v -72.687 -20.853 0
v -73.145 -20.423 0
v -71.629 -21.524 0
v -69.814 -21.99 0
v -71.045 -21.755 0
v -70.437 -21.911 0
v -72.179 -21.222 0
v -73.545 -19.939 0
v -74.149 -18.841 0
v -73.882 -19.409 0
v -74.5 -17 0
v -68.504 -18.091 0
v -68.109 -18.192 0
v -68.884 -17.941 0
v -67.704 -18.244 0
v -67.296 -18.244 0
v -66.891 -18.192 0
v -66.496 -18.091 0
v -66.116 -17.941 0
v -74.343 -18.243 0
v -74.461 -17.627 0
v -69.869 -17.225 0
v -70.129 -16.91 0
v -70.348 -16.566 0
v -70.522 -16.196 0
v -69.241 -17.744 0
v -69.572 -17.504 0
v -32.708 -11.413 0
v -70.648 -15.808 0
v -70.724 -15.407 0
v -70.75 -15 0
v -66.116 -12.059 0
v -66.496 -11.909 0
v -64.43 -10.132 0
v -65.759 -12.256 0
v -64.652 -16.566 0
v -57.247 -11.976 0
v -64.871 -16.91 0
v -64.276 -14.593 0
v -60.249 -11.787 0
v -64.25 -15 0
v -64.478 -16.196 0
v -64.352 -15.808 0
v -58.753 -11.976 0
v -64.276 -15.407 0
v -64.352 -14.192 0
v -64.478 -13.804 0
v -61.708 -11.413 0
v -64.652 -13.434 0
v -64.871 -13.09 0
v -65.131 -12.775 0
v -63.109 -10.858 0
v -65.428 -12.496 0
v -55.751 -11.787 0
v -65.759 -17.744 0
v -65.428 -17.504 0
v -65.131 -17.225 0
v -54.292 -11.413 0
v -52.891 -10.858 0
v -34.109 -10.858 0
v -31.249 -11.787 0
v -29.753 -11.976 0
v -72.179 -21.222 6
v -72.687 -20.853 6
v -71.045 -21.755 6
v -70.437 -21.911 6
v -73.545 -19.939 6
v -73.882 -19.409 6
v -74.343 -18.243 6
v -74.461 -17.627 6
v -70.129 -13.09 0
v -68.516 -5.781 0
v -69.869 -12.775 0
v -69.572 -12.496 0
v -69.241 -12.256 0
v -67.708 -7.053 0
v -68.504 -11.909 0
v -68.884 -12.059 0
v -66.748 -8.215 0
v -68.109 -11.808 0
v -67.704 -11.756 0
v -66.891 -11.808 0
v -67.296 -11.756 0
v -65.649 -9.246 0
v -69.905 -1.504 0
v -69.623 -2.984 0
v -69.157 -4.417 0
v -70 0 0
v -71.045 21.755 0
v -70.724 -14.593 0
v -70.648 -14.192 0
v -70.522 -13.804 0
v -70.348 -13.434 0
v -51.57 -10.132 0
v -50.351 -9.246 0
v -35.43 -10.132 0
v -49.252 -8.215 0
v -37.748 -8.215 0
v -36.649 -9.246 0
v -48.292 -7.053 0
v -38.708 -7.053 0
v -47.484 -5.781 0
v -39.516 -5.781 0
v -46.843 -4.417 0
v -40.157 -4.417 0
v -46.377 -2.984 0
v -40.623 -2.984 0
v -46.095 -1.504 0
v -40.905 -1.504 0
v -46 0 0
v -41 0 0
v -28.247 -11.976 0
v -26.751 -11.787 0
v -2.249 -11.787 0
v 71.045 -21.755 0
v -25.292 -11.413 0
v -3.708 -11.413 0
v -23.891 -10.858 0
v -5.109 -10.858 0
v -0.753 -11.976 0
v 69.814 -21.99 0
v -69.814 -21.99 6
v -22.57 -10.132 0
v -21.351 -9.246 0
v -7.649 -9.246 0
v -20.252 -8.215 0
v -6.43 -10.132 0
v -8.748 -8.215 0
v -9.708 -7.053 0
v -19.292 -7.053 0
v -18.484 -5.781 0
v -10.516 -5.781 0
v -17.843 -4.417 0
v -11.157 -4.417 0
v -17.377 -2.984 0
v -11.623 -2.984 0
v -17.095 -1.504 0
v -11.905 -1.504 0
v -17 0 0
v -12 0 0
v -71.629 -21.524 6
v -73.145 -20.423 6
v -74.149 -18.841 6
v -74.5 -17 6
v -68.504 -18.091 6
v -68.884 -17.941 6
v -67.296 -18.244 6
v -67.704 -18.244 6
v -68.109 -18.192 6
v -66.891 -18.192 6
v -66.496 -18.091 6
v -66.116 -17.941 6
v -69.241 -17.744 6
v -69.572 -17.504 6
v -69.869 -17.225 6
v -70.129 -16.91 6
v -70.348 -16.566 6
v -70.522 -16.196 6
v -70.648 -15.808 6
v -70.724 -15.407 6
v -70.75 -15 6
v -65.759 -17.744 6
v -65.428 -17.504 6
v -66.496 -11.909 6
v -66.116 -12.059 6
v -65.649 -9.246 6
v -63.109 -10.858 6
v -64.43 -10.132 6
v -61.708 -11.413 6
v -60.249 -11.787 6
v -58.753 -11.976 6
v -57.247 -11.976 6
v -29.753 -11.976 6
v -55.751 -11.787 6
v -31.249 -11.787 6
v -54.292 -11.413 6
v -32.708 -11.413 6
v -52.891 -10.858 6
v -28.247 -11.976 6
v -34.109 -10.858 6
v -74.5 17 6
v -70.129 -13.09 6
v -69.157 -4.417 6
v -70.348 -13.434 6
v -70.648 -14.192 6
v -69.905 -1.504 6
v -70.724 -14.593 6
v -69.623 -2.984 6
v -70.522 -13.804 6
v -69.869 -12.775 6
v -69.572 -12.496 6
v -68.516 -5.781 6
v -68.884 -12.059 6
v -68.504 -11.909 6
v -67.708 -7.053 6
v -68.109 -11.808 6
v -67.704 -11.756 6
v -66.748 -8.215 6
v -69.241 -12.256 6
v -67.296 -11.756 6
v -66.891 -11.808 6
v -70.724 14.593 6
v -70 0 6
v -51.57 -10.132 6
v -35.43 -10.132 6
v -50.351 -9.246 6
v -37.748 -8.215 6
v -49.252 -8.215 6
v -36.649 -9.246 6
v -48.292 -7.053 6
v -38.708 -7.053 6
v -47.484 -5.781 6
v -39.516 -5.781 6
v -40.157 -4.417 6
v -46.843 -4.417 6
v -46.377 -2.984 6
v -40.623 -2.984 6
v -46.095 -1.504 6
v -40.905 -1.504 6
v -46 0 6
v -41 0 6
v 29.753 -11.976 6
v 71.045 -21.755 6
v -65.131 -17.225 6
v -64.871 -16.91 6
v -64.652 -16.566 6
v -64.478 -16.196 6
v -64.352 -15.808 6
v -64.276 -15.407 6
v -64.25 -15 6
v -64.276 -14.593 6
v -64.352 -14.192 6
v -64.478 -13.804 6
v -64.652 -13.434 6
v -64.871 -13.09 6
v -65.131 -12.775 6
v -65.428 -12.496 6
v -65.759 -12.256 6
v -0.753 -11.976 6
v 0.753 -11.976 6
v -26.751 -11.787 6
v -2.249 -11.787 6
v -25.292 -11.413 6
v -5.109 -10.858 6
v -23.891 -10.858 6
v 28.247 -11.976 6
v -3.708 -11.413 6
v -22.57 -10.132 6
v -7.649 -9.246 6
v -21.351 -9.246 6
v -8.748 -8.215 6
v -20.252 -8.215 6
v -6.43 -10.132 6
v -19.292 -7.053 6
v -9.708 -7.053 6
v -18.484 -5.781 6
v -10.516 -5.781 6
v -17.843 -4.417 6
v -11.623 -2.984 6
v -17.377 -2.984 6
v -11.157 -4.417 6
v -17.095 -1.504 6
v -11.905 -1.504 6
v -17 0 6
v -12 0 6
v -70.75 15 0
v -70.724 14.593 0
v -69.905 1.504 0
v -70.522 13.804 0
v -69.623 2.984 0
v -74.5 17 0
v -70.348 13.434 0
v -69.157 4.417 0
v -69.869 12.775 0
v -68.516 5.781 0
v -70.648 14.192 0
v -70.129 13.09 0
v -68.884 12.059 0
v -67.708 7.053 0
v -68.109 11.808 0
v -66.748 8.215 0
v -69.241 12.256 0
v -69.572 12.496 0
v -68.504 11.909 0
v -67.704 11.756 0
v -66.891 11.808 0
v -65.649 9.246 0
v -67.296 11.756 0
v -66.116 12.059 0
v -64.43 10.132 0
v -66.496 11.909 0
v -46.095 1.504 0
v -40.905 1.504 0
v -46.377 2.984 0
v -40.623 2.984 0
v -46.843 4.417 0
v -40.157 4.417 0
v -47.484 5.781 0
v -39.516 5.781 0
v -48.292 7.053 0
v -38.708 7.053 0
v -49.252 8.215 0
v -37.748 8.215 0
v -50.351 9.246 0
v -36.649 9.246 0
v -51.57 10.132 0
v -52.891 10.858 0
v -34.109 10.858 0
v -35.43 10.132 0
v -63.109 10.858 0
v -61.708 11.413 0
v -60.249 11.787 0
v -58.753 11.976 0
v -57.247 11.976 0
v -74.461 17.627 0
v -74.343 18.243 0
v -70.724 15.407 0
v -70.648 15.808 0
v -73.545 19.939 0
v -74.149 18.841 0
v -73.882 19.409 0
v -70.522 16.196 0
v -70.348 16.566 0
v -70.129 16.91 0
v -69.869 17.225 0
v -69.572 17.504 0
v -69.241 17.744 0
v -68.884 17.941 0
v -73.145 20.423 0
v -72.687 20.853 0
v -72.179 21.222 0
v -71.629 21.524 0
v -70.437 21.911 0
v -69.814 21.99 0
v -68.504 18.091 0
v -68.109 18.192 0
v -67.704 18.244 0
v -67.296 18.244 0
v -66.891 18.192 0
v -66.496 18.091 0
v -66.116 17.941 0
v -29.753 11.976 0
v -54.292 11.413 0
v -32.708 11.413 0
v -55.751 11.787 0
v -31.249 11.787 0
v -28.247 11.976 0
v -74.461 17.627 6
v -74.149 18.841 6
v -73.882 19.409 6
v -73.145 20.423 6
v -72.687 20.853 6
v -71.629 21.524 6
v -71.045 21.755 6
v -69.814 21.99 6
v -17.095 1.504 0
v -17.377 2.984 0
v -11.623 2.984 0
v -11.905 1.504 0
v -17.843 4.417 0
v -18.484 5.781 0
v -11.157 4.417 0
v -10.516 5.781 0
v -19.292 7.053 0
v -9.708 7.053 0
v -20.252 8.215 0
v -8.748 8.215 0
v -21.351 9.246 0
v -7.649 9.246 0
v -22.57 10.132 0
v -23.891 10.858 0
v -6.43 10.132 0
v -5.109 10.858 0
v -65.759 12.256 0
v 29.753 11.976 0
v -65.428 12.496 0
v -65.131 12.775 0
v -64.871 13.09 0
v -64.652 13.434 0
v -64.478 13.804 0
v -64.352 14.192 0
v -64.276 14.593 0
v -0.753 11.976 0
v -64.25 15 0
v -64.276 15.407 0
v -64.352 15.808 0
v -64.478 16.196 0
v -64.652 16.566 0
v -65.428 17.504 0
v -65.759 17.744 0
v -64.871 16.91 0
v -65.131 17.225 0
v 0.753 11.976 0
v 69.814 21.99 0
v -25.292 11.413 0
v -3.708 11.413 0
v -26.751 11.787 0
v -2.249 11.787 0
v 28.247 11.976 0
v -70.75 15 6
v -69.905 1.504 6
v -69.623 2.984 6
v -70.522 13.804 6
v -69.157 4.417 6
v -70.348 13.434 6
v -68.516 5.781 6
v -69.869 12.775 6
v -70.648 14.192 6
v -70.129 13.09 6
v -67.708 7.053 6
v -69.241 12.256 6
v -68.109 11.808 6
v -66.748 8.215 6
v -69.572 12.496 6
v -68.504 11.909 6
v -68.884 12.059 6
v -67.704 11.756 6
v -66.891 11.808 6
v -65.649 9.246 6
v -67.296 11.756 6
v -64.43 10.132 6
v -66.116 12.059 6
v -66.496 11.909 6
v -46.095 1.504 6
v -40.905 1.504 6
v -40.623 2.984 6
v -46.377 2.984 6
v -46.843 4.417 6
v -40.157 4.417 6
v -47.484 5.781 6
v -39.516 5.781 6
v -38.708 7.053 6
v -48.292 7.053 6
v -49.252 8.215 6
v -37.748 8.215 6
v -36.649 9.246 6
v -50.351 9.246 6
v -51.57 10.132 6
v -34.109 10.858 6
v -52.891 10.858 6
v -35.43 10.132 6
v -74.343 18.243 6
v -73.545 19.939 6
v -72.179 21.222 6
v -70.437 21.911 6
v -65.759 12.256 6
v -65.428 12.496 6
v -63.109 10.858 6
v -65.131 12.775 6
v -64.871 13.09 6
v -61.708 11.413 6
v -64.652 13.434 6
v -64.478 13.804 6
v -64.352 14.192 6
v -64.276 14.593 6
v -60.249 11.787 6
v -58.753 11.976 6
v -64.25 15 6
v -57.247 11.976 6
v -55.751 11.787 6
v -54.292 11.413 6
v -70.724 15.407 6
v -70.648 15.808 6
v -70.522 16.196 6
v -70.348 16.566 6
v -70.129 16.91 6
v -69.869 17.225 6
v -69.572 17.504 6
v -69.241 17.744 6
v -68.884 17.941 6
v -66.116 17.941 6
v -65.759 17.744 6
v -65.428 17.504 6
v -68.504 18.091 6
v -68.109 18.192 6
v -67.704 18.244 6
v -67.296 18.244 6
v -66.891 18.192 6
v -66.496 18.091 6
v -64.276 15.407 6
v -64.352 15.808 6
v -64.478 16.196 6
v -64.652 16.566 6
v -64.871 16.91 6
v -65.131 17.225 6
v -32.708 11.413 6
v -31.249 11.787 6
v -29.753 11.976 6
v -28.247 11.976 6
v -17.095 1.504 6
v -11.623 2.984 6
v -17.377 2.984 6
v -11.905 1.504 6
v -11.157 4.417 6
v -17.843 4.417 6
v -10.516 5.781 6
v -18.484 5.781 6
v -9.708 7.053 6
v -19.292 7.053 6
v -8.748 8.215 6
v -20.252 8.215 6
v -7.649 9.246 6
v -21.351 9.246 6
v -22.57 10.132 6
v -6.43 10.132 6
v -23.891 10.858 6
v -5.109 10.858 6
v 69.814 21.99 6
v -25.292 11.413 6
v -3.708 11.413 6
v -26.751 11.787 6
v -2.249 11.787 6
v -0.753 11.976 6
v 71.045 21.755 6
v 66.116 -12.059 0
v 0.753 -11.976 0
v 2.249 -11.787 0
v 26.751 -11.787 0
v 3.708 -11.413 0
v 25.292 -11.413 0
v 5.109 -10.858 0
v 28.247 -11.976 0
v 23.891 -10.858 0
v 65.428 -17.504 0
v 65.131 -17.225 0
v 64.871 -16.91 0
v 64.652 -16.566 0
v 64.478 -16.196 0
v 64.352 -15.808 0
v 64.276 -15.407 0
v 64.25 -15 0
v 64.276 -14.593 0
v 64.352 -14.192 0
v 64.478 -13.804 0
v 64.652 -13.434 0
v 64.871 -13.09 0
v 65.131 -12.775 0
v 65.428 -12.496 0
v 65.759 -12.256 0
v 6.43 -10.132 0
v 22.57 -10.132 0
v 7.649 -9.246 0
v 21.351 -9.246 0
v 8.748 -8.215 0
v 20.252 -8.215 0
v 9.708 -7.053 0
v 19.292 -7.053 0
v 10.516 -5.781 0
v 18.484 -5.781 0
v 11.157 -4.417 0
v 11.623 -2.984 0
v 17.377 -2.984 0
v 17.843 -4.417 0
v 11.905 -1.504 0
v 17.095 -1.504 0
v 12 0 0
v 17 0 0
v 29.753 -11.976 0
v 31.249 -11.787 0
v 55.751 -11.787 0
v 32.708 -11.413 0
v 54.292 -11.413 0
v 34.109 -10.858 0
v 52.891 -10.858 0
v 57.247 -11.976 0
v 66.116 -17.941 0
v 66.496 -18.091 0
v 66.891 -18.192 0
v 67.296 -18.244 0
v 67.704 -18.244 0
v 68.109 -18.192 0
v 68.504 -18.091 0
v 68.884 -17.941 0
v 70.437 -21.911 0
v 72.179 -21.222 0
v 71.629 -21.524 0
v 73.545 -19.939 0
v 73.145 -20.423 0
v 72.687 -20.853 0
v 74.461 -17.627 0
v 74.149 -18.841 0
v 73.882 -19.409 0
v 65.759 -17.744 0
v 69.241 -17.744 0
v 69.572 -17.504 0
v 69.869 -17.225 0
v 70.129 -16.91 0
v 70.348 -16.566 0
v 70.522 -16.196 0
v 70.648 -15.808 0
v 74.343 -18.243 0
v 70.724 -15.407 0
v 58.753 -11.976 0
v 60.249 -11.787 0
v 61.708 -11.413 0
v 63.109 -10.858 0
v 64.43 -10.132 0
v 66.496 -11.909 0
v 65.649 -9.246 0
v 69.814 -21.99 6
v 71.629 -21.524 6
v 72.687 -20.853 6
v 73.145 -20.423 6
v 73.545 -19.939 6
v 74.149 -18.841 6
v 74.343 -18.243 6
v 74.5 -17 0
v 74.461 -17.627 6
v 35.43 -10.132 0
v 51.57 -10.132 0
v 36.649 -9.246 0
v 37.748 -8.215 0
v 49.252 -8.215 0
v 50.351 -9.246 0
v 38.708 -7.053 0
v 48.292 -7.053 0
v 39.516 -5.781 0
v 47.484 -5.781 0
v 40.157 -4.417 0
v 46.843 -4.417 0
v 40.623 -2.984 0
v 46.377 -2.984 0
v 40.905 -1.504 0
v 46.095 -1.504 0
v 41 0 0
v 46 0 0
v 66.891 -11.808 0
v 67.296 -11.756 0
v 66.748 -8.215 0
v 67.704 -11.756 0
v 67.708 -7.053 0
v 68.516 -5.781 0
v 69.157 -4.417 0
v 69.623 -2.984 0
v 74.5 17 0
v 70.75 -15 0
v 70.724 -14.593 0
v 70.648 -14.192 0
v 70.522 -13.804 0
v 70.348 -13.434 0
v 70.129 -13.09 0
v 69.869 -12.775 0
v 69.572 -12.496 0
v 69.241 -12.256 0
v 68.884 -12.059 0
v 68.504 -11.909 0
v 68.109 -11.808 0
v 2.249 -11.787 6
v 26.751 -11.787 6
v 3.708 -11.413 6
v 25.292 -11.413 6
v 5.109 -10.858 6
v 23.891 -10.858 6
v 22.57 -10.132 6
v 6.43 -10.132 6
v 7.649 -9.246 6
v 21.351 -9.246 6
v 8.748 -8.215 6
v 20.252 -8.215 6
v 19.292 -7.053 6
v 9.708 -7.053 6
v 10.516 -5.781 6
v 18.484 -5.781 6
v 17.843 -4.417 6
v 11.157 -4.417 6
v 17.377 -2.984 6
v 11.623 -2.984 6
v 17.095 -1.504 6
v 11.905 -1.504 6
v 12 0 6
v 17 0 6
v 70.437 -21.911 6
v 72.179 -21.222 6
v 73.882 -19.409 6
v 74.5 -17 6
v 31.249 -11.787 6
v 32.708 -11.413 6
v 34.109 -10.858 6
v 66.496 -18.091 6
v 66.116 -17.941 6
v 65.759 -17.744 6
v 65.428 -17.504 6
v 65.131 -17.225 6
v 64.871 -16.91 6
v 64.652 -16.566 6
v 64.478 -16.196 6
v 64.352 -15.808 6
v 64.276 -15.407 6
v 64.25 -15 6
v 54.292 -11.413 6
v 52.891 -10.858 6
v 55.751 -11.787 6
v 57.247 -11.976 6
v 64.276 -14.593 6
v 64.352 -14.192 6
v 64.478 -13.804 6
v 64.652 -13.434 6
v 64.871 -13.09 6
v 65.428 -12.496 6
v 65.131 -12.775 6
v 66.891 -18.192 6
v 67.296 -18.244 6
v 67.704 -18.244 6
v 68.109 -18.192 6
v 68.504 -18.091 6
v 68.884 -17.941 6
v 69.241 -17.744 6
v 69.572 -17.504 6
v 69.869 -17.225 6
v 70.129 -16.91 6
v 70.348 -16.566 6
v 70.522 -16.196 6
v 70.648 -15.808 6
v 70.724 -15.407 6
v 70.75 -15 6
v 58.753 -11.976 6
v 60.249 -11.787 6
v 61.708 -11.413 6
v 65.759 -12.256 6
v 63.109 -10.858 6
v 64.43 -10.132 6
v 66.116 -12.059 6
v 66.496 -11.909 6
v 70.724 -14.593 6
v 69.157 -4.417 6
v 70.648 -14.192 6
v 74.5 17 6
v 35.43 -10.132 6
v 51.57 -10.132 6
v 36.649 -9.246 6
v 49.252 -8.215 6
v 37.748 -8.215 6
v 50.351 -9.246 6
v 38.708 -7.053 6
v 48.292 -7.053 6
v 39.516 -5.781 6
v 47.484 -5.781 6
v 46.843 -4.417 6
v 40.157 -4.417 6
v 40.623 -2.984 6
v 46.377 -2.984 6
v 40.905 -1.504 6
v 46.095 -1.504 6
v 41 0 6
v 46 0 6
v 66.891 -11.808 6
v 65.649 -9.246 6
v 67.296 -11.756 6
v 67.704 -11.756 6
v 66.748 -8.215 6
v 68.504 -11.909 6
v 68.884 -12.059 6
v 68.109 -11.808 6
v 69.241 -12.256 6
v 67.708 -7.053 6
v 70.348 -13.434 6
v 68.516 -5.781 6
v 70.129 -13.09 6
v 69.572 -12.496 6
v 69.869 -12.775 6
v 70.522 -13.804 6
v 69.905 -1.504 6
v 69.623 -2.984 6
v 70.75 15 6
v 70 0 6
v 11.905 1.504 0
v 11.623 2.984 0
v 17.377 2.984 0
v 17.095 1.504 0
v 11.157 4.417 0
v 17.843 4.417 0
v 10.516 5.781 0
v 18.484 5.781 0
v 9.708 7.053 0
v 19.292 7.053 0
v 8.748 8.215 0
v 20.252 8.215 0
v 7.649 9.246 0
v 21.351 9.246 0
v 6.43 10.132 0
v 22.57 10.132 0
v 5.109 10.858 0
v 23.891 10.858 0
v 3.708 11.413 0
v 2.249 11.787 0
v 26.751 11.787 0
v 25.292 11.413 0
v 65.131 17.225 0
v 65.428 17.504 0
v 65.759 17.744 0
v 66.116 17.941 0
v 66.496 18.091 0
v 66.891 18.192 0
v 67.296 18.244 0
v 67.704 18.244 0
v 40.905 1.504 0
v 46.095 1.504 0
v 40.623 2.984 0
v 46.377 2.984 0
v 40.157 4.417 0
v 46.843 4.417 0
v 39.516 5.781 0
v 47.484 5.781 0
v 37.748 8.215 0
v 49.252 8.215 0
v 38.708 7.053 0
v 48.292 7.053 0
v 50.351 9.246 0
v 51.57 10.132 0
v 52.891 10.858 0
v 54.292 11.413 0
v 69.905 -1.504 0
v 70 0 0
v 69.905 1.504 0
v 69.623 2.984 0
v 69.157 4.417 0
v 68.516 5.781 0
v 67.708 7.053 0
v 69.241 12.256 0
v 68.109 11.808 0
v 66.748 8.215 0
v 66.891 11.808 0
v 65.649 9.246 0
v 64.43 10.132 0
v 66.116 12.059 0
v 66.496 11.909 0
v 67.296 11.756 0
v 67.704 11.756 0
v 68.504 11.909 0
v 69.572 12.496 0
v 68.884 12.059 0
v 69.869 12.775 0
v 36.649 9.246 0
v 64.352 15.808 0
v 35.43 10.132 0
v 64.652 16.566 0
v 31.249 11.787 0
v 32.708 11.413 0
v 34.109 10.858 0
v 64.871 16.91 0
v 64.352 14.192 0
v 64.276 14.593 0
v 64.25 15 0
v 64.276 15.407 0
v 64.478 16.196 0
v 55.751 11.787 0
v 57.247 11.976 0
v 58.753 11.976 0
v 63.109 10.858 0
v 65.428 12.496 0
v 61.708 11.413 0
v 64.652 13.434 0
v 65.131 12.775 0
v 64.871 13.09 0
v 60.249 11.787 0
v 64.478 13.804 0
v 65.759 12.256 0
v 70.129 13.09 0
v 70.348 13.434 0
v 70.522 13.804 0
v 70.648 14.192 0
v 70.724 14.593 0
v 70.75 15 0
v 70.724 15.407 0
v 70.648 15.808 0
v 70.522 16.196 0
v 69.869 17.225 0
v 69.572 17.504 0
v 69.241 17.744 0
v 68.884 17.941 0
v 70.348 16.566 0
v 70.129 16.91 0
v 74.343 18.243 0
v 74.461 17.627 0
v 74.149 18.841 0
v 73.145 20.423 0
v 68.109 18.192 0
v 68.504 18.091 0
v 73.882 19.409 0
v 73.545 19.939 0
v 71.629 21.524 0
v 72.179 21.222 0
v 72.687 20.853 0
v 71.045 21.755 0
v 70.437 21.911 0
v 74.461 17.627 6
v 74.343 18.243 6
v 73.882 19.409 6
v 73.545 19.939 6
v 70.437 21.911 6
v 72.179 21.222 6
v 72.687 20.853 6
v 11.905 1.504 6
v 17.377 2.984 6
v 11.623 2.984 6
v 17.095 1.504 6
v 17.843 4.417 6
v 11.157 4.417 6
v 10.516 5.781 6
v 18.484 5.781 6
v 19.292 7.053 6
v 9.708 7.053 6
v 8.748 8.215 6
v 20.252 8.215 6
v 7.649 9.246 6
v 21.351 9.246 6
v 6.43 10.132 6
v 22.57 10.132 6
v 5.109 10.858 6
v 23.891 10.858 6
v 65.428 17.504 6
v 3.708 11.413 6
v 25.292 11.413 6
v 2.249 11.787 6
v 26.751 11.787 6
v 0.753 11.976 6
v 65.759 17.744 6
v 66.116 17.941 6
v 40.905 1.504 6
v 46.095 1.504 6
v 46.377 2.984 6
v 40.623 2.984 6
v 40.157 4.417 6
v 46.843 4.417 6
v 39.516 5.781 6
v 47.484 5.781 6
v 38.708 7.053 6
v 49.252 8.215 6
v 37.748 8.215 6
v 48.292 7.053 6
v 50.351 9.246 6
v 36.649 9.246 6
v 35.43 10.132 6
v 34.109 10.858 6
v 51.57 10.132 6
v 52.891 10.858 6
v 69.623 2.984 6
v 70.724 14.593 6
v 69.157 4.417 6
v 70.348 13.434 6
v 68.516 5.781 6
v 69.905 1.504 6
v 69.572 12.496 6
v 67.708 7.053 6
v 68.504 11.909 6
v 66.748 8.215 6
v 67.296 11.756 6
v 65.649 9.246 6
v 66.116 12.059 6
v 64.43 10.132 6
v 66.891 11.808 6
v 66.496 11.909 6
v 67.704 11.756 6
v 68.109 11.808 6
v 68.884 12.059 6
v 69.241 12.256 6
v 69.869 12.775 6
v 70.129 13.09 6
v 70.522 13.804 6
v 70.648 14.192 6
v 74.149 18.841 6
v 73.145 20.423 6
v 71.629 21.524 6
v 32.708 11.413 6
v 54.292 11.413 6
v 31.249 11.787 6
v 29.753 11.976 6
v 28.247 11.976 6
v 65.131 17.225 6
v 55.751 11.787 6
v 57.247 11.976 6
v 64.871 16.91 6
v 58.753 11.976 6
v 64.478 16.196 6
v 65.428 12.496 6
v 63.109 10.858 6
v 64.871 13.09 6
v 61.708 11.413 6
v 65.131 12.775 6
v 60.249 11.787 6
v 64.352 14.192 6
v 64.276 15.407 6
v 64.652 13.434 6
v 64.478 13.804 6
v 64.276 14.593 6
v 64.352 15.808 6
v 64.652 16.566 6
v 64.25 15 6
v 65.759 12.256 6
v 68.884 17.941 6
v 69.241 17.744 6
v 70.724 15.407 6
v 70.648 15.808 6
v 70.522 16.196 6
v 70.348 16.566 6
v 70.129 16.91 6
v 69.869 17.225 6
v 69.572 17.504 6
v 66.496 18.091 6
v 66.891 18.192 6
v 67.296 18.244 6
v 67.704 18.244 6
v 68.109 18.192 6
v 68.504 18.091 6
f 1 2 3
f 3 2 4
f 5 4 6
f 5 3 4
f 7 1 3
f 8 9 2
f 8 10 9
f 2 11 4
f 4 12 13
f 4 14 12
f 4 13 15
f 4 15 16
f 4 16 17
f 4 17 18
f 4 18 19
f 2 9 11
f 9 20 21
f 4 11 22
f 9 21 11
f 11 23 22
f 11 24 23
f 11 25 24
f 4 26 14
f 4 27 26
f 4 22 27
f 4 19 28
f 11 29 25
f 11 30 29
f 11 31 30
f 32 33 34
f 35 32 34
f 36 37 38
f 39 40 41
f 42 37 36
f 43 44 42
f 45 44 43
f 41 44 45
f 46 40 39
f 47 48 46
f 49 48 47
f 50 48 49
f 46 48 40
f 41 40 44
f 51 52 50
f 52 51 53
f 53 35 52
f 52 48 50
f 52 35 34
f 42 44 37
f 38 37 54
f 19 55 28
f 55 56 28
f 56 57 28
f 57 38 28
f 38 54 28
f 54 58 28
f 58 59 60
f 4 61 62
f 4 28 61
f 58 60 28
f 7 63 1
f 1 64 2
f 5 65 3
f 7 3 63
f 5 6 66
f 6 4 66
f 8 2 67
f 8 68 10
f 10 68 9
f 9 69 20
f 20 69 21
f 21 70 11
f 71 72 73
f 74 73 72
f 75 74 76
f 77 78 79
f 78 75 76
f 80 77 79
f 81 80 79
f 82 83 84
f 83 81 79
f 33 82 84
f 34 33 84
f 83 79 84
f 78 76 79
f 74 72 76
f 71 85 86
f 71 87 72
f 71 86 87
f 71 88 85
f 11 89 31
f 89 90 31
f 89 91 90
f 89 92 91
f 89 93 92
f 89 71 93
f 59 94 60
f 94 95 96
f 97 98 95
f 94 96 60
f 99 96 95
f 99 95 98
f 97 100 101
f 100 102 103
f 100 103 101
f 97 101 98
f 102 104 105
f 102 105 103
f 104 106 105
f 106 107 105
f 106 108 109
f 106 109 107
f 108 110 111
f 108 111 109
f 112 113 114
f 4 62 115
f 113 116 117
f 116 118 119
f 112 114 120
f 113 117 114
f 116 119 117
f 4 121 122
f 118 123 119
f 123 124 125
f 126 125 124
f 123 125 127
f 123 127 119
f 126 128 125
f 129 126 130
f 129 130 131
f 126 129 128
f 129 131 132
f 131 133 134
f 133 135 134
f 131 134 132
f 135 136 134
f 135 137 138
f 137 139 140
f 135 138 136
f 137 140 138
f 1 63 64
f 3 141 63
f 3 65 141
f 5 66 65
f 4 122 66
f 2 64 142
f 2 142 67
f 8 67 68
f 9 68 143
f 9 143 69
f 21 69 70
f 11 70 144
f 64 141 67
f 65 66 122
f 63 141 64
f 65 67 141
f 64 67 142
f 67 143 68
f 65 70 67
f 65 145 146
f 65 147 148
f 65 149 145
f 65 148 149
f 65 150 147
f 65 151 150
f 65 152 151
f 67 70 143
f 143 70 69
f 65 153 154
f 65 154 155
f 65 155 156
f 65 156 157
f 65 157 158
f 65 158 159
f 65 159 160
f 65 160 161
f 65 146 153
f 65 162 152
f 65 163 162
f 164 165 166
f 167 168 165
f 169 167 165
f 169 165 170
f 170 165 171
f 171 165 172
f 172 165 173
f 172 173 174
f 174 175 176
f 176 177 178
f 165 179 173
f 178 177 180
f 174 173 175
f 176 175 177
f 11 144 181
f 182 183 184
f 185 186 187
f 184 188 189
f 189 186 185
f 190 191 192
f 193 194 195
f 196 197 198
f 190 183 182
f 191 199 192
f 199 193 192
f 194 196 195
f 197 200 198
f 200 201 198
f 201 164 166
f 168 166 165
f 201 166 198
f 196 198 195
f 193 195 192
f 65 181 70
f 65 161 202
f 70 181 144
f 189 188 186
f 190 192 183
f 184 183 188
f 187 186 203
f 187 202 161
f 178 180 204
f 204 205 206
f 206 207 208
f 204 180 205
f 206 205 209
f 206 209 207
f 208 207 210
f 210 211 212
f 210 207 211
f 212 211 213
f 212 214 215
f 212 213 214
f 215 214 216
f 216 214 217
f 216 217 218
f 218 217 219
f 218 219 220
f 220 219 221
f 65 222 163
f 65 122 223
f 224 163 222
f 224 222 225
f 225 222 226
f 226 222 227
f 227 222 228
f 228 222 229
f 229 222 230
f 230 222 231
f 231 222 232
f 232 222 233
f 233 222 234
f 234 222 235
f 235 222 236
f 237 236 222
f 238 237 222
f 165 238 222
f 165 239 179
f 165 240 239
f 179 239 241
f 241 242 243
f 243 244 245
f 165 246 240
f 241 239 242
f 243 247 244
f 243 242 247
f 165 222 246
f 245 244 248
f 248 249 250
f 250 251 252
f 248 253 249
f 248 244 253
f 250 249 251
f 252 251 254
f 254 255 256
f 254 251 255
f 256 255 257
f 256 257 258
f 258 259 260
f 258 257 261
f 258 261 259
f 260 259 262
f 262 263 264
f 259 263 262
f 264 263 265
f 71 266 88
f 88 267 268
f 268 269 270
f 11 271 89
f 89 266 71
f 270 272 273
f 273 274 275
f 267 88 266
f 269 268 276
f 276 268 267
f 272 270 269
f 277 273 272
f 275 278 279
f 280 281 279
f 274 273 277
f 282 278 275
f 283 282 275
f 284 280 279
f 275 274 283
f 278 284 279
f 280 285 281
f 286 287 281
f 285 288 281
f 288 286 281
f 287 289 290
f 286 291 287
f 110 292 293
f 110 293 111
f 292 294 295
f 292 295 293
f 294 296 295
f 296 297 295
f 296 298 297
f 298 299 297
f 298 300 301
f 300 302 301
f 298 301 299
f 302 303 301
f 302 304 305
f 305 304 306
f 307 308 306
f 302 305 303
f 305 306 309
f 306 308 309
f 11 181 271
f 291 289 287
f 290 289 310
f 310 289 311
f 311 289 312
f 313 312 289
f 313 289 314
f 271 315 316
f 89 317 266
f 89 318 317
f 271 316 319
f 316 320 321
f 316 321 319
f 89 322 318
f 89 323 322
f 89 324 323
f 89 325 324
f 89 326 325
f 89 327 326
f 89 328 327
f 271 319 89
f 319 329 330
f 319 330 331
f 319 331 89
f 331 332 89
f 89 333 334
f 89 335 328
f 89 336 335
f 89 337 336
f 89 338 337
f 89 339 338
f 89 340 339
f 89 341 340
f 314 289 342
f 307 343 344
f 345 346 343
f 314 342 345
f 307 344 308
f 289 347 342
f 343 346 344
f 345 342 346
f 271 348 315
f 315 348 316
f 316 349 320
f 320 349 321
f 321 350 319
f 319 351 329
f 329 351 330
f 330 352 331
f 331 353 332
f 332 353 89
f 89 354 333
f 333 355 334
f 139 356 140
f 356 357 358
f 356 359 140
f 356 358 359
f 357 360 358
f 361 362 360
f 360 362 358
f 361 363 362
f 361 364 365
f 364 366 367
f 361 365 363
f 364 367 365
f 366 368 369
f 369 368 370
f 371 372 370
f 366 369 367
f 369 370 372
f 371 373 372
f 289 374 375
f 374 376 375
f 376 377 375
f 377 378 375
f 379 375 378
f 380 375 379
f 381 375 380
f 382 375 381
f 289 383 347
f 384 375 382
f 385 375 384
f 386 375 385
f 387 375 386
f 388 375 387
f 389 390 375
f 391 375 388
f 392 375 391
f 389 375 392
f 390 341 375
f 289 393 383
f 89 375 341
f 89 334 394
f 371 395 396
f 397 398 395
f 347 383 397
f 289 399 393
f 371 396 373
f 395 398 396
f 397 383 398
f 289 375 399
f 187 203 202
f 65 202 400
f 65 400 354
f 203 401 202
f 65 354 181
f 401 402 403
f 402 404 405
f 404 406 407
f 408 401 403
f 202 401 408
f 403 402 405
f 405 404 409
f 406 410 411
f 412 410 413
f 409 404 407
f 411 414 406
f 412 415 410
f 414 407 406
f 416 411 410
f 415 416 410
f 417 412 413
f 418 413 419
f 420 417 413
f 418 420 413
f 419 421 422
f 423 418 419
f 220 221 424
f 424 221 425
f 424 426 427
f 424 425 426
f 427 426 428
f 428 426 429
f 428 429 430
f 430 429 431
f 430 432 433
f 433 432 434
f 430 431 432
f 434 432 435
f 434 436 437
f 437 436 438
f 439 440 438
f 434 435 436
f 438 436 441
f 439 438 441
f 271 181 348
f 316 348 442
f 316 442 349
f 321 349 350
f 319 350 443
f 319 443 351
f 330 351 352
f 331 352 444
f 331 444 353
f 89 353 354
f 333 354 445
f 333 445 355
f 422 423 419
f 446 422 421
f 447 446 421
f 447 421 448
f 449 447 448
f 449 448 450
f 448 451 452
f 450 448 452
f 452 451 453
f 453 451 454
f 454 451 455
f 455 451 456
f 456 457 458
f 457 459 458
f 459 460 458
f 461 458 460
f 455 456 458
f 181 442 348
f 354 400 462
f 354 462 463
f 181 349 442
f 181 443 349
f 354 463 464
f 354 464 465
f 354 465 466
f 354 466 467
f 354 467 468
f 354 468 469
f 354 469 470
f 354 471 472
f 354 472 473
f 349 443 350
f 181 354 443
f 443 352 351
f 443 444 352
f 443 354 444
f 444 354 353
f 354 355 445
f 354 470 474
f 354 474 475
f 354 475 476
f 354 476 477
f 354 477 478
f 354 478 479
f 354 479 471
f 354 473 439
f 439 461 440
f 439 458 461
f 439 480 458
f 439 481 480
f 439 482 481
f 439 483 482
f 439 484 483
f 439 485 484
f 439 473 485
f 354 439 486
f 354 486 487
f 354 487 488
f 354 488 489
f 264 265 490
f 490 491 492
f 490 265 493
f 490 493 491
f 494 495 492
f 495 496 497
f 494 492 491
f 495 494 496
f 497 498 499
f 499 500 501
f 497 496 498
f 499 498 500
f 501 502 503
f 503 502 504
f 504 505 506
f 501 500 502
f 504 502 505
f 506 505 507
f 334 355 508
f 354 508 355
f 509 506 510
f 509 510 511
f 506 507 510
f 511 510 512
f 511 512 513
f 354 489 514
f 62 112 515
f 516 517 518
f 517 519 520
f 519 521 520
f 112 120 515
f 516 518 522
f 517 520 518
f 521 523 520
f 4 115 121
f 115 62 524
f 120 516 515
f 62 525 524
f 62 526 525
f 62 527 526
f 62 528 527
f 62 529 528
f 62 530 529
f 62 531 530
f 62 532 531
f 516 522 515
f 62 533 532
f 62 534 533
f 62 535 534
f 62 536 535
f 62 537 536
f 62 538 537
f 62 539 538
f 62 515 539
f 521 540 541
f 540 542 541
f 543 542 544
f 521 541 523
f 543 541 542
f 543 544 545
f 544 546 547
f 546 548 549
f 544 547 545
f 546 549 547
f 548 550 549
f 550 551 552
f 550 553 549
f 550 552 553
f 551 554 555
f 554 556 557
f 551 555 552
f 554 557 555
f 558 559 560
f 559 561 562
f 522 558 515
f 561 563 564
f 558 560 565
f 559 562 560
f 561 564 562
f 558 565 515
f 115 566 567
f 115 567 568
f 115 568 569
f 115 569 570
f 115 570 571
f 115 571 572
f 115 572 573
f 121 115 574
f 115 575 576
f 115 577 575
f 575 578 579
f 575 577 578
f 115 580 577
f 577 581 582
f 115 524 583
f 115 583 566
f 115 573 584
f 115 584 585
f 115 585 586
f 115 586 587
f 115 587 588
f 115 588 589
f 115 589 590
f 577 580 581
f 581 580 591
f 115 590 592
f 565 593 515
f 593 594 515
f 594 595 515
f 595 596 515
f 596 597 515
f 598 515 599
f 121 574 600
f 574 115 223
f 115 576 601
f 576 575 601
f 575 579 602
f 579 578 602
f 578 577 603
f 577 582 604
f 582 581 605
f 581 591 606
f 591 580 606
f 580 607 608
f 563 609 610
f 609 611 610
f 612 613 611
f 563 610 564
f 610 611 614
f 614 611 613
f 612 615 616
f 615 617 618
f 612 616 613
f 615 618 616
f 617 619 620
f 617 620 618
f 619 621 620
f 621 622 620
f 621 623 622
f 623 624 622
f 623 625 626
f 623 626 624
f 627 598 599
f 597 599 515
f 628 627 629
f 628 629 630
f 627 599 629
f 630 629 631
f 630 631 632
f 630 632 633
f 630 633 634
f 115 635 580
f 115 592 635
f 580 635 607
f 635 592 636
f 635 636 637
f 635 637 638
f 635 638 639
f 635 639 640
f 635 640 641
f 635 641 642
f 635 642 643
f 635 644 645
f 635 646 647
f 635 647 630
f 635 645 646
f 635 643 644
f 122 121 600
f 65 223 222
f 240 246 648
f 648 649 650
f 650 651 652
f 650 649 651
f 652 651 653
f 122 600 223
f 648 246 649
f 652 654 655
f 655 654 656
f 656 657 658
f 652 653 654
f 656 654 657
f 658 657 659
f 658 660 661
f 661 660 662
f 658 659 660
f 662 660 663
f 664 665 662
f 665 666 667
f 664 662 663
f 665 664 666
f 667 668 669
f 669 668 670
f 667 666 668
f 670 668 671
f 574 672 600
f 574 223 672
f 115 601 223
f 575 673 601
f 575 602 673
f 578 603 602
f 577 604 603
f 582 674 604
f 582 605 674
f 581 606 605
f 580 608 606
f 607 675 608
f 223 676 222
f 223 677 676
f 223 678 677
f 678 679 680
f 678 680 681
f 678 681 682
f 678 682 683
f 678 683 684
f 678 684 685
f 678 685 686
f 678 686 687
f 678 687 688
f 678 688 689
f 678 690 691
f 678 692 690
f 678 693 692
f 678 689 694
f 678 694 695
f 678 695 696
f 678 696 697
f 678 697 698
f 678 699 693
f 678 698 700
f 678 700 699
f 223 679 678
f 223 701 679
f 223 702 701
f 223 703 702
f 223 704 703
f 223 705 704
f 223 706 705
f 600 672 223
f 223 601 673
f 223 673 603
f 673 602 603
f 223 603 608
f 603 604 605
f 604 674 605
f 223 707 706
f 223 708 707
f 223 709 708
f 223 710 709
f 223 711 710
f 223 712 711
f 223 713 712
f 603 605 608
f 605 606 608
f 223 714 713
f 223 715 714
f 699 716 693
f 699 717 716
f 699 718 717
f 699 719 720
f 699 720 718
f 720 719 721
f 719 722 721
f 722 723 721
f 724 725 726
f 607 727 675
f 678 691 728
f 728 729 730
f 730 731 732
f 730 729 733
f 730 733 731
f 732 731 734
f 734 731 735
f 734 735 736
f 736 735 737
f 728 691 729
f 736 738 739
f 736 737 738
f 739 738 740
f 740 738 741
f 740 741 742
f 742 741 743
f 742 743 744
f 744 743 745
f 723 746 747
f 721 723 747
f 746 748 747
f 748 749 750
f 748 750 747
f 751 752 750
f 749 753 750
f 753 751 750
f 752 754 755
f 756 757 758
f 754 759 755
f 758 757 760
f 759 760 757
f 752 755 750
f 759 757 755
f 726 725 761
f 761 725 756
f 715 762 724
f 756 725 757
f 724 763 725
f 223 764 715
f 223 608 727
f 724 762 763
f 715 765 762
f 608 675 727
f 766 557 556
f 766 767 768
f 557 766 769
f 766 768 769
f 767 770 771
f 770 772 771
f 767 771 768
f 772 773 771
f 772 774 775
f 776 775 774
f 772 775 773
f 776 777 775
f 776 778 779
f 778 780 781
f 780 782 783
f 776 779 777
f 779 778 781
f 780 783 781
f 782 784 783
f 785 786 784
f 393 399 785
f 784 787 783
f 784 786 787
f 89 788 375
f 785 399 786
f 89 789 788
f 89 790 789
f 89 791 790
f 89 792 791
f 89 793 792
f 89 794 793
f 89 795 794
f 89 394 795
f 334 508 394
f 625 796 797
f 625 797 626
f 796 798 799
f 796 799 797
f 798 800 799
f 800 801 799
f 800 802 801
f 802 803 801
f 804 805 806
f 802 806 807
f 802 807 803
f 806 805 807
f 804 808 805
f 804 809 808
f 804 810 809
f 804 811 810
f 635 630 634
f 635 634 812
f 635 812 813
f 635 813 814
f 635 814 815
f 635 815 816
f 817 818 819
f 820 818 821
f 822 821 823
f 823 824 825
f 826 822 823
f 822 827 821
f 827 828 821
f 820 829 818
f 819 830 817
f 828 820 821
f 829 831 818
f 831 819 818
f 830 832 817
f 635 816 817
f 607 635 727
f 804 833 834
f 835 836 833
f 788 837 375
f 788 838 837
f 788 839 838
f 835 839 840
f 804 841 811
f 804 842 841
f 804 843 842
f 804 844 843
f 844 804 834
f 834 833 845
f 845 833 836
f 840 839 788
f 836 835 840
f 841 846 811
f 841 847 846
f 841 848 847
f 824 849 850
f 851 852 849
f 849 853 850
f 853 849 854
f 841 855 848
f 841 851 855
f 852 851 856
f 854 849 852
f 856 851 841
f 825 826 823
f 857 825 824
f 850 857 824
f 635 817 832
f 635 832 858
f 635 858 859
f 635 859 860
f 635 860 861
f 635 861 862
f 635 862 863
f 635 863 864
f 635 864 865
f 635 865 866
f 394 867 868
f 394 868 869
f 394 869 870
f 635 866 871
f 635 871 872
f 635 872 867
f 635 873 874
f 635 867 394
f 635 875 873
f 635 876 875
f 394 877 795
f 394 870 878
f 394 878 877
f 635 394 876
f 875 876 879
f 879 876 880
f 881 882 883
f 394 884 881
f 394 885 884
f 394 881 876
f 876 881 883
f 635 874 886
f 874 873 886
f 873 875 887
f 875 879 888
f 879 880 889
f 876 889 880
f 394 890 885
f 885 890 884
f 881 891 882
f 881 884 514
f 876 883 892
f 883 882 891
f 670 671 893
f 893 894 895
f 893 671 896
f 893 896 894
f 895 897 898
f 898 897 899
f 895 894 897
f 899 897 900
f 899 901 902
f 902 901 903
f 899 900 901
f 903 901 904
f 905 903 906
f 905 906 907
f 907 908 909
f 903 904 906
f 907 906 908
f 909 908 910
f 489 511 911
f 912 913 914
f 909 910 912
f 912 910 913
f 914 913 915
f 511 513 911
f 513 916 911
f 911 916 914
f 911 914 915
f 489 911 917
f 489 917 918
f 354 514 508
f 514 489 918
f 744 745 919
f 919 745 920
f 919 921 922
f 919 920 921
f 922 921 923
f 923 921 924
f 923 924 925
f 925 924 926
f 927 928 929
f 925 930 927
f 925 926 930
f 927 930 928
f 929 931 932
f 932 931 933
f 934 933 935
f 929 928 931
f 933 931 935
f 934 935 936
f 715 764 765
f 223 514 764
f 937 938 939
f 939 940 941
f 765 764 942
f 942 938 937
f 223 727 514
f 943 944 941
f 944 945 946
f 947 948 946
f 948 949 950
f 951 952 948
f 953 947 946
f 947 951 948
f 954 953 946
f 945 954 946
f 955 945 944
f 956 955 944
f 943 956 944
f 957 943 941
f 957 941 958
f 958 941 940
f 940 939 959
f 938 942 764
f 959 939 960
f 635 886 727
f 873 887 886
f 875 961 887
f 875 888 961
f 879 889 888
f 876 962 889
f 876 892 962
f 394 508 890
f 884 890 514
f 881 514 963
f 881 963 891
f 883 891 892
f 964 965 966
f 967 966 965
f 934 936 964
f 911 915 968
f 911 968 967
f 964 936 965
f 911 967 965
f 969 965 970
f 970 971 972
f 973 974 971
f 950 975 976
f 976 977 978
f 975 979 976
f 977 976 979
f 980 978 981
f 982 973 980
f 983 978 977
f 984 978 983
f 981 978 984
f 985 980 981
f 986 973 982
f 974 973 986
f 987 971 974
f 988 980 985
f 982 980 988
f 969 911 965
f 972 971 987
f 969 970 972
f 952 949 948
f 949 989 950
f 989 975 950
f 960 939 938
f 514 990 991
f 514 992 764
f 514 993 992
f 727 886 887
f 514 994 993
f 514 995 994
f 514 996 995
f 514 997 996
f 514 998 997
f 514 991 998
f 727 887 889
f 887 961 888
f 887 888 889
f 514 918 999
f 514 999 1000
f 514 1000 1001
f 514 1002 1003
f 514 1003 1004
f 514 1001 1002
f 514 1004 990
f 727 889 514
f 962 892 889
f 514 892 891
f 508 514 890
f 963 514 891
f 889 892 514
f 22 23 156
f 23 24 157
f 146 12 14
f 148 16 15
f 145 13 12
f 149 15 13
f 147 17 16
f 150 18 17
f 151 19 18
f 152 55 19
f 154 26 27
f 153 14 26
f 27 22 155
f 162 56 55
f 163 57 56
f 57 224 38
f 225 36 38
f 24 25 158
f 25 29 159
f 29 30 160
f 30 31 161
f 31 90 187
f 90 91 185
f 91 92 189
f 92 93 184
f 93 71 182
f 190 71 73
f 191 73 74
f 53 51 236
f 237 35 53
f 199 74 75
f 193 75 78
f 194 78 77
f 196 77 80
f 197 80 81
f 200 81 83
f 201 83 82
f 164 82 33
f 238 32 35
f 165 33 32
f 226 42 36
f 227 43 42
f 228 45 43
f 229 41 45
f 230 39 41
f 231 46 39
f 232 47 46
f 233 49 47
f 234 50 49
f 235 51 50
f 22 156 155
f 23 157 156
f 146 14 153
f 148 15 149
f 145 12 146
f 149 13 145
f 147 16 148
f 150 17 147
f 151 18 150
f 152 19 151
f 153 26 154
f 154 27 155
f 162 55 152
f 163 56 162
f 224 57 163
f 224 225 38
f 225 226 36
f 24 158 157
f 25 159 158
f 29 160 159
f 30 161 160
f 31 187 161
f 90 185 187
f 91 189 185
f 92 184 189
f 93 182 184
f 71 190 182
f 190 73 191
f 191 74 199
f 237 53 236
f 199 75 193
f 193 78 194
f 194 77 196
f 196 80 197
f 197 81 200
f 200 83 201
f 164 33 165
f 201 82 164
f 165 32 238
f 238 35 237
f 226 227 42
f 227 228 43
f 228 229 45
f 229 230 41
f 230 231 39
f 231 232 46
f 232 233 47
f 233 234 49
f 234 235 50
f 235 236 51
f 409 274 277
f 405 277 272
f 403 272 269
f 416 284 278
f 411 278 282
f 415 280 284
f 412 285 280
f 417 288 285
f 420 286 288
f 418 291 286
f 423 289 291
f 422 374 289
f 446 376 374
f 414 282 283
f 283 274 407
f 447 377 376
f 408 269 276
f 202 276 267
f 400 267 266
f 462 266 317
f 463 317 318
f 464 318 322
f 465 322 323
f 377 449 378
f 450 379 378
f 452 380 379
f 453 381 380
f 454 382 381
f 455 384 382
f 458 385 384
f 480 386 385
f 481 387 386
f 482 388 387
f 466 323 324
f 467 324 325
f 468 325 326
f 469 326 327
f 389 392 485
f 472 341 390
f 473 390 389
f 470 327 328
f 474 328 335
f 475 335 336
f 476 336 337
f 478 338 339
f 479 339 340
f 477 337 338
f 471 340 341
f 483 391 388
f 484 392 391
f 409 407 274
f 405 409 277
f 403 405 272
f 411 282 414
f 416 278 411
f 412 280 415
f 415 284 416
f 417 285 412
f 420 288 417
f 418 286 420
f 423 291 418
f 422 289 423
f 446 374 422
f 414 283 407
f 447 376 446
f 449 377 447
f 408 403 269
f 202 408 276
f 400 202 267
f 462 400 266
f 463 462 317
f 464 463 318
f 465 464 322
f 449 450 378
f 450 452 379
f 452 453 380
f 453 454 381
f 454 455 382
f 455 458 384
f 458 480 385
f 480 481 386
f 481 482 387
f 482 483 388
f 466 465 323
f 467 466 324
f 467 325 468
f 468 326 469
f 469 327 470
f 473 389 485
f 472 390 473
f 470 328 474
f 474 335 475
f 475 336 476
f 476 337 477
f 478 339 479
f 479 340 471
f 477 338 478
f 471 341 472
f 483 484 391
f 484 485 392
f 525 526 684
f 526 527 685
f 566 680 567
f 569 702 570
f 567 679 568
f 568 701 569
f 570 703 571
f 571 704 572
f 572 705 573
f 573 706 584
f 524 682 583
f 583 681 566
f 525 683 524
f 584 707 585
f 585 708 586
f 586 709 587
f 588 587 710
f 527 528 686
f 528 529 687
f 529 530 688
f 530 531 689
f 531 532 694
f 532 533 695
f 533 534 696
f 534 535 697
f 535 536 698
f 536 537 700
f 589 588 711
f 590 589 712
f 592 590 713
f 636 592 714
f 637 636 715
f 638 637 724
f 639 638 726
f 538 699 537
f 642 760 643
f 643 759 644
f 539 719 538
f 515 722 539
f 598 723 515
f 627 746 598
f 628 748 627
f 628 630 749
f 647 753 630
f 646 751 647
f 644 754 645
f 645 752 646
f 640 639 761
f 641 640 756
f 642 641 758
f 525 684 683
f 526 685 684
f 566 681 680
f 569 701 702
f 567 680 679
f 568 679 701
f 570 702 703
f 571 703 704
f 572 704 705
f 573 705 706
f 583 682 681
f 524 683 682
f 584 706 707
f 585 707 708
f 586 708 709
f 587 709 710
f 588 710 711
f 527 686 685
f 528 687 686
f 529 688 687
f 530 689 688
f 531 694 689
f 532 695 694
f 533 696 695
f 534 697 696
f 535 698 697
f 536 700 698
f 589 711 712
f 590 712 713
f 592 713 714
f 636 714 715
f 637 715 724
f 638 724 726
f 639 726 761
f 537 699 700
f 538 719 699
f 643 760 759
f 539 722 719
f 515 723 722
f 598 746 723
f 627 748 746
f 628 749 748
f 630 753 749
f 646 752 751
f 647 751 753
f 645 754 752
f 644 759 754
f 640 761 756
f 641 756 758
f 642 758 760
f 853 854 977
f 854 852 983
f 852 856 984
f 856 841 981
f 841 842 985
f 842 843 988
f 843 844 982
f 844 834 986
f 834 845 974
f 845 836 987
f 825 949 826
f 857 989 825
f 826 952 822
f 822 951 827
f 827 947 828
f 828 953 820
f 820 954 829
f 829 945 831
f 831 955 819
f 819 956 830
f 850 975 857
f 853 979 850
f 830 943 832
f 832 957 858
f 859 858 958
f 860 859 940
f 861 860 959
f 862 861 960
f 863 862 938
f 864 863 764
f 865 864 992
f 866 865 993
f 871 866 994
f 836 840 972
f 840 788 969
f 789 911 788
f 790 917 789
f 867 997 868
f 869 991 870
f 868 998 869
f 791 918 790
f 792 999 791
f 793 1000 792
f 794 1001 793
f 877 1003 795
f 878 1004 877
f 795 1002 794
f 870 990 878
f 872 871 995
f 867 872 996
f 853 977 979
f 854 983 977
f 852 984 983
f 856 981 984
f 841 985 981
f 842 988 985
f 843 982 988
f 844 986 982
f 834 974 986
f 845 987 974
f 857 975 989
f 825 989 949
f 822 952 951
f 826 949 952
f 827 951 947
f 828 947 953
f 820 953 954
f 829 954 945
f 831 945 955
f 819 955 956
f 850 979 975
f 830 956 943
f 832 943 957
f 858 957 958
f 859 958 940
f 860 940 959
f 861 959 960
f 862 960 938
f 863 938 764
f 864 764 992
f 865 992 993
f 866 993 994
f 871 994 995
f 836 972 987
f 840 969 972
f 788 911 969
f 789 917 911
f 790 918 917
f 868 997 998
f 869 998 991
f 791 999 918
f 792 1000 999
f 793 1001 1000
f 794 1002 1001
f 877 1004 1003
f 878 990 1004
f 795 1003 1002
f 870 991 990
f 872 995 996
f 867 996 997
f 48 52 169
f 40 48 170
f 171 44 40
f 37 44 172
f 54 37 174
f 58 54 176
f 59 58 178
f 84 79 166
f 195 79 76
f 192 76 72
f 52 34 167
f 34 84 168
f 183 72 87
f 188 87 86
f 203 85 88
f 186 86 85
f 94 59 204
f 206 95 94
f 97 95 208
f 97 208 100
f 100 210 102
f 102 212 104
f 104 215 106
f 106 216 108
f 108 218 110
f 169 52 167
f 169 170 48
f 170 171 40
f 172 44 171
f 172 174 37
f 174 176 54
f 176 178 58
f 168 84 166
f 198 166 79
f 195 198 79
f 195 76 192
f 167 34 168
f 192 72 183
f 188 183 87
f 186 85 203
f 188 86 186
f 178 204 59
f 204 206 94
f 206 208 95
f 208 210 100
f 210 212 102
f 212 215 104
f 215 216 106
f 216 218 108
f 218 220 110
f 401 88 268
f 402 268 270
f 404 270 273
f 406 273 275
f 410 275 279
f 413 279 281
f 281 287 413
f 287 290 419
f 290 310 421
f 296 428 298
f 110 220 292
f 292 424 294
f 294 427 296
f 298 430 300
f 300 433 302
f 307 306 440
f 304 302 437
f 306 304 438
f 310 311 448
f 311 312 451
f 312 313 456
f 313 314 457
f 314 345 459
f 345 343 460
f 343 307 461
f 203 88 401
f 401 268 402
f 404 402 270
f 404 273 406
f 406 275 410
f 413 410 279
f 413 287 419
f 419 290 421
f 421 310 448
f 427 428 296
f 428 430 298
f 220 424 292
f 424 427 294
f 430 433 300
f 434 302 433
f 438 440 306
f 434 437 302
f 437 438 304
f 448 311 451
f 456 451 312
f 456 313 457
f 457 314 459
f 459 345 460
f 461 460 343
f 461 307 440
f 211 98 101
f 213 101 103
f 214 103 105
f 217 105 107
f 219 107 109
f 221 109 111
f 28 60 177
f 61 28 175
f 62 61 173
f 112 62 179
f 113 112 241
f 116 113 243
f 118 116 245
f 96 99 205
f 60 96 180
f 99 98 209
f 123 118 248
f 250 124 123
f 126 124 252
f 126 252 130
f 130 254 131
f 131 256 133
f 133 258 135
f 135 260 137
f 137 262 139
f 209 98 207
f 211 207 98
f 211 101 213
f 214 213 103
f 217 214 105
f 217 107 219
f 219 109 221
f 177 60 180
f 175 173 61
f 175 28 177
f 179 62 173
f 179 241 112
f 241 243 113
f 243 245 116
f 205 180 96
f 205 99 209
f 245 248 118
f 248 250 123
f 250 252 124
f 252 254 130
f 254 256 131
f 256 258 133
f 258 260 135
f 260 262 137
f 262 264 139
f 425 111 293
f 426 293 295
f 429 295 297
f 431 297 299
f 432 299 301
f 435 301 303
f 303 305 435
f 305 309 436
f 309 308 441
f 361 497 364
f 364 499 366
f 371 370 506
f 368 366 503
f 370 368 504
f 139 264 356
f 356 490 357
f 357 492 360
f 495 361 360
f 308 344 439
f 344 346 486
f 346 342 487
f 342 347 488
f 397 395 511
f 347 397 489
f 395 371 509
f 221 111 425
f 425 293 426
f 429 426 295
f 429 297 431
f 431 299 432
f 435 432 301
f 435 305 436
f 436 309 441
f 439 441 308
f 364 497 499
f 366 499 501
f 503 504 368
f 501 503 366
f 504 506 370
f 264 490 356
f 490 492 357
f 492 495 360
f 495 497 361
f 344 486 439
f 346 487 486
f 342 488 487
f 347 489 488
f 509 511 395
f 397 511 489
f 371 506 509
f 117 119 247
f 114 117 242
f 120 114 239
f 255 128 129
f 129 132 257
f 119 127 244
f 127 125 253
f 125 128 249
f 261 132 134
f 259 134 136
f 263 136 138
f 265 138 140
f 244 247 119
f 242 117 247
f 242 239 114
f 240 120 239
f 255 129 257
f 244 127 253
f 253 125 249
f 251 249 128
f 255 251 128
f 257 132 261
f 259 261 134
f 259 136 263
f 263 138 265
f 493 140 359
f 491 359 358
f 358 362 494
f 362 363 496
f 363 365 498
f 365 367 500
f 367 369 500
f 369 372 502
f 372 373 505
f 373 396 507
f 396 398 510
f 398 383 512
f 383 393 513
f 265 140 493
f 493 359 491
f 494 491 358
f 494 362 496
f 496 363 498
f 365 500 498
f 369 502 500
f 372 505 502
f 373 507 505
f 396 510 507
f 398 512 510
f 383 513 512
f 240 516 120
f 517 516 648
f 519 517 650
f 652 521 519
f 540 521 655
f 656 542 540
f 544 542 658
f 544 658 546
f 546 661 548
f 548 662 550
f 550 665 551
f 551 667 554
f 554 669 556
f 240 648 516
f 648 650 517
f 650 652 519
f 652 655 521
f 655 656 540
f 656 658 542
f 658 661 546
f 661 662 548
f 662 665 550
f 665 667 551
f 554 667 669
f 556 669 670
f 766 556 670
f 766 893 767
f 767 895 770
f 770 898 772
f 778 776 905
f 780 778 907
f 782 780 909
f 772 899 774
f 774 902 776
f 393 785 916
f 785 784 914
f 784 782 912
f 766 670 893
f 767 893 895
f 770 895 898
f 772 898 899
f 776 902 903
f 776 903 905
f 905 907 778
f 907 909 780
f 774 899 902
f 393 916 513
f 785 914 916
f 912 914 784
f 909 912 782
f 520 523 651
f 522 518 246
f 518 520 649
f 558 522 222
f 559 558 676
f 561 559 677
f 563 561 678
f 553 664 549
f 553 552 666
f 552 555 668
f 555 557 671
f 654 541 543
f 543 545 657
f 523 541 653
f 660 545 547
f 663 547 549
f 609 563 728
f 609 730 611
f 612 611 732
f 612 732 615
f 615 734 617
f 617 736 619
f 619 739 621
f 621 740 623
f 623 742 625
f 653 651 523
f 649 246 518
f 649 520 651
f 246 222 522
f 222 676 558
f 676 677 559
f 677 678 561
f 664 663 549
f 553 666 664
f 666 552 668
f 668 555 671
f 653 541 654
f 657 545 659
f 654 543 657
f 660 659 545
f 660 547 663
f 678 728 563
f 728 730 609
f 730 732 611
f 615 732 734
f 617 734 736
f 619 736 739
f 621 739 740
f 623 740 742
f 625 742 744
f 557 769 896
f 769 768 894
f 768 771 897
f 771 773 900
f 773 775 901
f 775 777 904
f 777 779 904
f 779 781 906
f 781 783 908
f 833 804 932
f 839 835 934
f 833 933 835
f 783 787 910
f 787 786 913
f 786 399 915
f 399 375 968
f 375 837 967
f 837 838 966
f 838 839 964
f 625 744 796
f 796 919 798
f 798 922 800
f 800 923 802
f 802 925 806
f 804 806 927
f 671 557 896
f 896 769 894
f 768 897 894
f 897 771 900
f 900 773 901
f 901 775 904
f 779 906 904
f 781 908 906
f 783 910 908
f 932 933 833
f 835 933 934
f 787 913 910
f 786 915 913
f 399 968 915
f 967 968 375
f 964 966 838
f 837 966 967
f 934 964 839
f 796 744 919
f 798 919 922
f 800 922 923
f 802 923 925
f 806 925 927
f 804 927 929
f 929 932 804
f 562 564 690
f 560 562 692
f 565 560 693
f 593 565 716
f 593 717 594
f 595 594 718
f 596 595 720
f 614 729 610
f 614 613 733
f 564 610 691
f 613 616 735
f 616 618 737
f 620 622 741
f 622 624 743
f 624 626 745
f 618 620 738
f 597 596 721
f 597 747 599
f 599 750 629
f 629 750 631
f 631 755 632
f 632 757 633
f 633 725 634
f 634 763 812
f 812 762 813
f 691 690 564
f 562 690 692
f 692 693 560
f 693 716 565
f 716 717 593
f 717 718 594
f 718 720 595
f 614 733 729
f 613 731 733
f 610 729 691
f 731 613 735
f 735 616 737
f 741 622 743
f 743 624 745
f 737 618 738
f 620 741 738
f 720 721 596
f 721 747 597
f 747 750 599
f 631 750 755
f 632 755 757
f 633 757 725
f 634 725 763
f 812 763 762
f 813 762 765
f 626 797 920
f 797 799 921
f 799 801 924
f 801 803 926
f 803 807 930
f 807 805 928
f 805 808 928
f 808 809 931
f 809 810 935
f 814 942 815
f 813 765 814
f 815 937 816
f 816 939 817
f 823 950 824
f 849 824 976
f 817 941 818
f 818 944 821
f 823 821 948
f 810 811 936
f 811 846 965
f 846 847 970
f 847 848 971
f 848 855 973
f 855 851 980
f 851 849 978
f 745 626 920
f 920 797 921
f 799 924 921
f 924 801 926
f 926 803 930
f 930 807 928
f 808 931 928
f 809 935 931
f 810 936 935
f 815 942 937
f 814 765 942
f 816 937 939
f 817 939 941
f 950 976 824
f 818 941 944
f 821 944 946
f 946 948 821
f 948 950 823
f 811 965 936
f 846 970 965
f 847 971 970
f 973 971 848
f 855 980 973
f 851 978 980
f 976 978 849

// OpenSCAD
$fn = 50;

difference() {
	union() {
		hull() {
			translate(v = [-69.5, 17.0, 0]) {
				cylinder(h = 6, r = 5);
			}
			translate(v = [69.5, 17.0, 0]) {
				cylinder(h = 6, r = 5);
			}
			translate(v = [-69.5, -17.0, 0]) {
				cylinder(h = 6, r = 5);
			}
			translate(v = [69.5, -17.0, 0]) {
				cylinder(h = 6, r = 5);
			}
		}
	}
	union() {
		translate(v = [-67.5, -15.0, -100.0]) {
			cylinder(h = 200, r = 3.25);
		}
		translate(v = [-67.5, 15.0, -100.0]) {
			cylinder(h = 200, r = 3.25);
		}
		translate(v = [67.5, -15.0, -100.0]) {
			cylinder(h = 200, r = 3.25);
		}
		translate(v = [67.5, 15.0, -100.0]) {
			cylinder(h = 200, r = 3.25);
		}
		translate(v = [-67.5, -15.0, -100.0]) {
			cylinder(h = 200, r = 1.8);
		}
		translate(v = [-67.5, 15.0, -100.0]) {
			cylinder(h = 200, r = 1.8);
		}
		translate(v = [67.5, -15.0, -100.0]) {
			cylinder(h = 200, r = 1.8);
		}
		translate(v = [67.5, 15.0, -100.0]) {
			cylinder(h = 200, r = 1.8);
		}
		translate(v = [-58.0, 0, 0.0]) {
			cylinder(h = 6, r = 12.0);
		}
		translate(v = [-29.0, 0, 0.0]) {
			cylinder(h = 6, r = 12.0);
		}
		cylinder(h = 6, r = 12.0);
		translate(v = [29.0, 0, 0.0]) {
			cylinder(h = 6, r = 12.0);
		}
		translate(v = [58.0, 0, 0.0]) {
			cylinder(h = 6, r = 12.0);
		}
	}
}
